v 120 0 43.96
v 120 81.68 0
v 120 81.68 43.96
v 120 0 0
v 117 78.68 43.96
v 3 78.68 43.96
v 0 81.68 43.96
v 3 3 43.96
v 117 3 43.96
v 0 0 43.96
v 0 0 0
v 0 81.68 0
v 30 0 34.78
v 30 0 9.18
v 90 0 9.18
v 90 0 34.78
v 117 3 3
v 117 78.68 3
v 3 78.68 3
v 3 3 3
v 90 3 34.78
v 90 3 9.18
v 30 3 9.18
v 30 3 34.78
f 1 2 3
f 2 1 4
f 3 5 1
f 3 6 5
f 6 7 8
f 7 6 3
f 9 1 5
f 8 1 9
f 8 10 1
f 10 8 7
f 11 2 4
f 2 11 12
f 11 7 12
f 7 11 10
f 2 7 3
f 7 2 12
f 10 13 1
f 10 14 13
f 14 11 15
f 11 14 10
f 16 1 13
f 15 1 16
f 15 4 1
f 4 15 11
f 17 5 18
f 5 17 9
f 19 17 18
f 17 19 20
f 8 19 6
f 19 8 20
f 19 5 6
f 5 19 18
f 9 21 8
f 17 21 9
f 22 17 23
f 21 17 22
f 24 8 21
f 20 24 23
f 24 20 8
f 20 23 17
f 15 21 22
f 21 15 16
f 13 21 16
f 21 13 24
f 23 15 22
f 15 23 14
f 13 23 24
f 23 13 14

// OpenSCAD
/* doodle-meta {"version":1,"parameters":{"width":{"label":"Overall width","description":"Changes the body width","unit":"mm","feature":"body_width"},"depth":{"label":"Overall depth","description":"Changes the body depth","unit":"mm","feature":"body_depth"},"height":{"label":"Overall height","description":"Changes the body height","unit":"mm","feature":"body_height"},"wall_thickness":{"label":"Wall thickness","description":"Thickness of walls and bottom","unit":"mm","feature":"wall_thickness"},"window_width":{"label":"Window width","description":"Width of the front window opening","unit":"mm","feature":"front_window"},"window_height":{"label":"Window height","description":"Height of the front window opening","unit":"mm","feature":"front_window"}},"features":{"body_width":{"kind":"dimension","axis":"x","label":"Overall width"},"body_depth":{"kind":"dimension","axis":"y","label":"Overall depth"},"body_height":{"kind":"dimension","axis":"z","label":"Overall height"},"front_window":{"kind":"region","label":"Front Window","min":[{"parameter":"width","scale":0.2525,"offset":0},{"parameter":"depth","scale":-0.1,"offset":0},{"parameter":"height","scale":0.2078,"offset":0}],"max":[{"parameter":"width","scale":0.7475,"offset":0},{"parameter":"depth","scale":1.1,"offset":0},{"parameter":"height","scale":0.7922,"offset":0}]}}} */

// Top-level parameters (user-editable)
width = 120.0;
depth = 81.68;
height = 43.96;
wall_thickness = 3.0;
window_width = 60.0;
window_height = 25.6;

// Derived constants (not user-editable)
eps = 0.01;

// Main design
main_enclosure();

module main_enclosure() {
    difference() {
        // Outer shell body
        outer_shell();
        
        // Subtract inner cavity to create open-top shell
        inner_cavity();
        
        // Subtract front window cutout
        front_window_cutter();
    }
}

module outer_shell() {
    cube([width, depth, height], center=false);
}

module inner_cavity() {
    // Inner cavity: subtracted from top, leaving bottom and walls
    // Positioned to leave wall_thickness on all sides and bottom
    translate([wall_thickness, wall_thickness, wall_thickness]) {
        cube([width - 2*wall_thickness, depth - 2*wall_thickness, height - wall_thickness + eps], center=false);
    }
}

module front_window_cutter() {
    // Window is centered horizontally on front face
    // Vertical position: center at ~50% of height based on measured view
    // Window height ~25.6mm, so bottom at (height - window_height)/2
    window_z_bottom = (height - window_height) / 2.0;
    window_x_left = (width - window_width) / 2.0;
    
    // Cutter spans through the front wall (Y direction)
    // Front wall is at Y=0 to Y=wall_thickness
    // Cutter must traverse fully: from Y=-eps to Y=wall_thickness+eps
    translate([window_x_left, -eps, window_z_bottom]) {
        cube([window_width, wall_thickness + 2*eps, window_height], center=false);
    }
}
